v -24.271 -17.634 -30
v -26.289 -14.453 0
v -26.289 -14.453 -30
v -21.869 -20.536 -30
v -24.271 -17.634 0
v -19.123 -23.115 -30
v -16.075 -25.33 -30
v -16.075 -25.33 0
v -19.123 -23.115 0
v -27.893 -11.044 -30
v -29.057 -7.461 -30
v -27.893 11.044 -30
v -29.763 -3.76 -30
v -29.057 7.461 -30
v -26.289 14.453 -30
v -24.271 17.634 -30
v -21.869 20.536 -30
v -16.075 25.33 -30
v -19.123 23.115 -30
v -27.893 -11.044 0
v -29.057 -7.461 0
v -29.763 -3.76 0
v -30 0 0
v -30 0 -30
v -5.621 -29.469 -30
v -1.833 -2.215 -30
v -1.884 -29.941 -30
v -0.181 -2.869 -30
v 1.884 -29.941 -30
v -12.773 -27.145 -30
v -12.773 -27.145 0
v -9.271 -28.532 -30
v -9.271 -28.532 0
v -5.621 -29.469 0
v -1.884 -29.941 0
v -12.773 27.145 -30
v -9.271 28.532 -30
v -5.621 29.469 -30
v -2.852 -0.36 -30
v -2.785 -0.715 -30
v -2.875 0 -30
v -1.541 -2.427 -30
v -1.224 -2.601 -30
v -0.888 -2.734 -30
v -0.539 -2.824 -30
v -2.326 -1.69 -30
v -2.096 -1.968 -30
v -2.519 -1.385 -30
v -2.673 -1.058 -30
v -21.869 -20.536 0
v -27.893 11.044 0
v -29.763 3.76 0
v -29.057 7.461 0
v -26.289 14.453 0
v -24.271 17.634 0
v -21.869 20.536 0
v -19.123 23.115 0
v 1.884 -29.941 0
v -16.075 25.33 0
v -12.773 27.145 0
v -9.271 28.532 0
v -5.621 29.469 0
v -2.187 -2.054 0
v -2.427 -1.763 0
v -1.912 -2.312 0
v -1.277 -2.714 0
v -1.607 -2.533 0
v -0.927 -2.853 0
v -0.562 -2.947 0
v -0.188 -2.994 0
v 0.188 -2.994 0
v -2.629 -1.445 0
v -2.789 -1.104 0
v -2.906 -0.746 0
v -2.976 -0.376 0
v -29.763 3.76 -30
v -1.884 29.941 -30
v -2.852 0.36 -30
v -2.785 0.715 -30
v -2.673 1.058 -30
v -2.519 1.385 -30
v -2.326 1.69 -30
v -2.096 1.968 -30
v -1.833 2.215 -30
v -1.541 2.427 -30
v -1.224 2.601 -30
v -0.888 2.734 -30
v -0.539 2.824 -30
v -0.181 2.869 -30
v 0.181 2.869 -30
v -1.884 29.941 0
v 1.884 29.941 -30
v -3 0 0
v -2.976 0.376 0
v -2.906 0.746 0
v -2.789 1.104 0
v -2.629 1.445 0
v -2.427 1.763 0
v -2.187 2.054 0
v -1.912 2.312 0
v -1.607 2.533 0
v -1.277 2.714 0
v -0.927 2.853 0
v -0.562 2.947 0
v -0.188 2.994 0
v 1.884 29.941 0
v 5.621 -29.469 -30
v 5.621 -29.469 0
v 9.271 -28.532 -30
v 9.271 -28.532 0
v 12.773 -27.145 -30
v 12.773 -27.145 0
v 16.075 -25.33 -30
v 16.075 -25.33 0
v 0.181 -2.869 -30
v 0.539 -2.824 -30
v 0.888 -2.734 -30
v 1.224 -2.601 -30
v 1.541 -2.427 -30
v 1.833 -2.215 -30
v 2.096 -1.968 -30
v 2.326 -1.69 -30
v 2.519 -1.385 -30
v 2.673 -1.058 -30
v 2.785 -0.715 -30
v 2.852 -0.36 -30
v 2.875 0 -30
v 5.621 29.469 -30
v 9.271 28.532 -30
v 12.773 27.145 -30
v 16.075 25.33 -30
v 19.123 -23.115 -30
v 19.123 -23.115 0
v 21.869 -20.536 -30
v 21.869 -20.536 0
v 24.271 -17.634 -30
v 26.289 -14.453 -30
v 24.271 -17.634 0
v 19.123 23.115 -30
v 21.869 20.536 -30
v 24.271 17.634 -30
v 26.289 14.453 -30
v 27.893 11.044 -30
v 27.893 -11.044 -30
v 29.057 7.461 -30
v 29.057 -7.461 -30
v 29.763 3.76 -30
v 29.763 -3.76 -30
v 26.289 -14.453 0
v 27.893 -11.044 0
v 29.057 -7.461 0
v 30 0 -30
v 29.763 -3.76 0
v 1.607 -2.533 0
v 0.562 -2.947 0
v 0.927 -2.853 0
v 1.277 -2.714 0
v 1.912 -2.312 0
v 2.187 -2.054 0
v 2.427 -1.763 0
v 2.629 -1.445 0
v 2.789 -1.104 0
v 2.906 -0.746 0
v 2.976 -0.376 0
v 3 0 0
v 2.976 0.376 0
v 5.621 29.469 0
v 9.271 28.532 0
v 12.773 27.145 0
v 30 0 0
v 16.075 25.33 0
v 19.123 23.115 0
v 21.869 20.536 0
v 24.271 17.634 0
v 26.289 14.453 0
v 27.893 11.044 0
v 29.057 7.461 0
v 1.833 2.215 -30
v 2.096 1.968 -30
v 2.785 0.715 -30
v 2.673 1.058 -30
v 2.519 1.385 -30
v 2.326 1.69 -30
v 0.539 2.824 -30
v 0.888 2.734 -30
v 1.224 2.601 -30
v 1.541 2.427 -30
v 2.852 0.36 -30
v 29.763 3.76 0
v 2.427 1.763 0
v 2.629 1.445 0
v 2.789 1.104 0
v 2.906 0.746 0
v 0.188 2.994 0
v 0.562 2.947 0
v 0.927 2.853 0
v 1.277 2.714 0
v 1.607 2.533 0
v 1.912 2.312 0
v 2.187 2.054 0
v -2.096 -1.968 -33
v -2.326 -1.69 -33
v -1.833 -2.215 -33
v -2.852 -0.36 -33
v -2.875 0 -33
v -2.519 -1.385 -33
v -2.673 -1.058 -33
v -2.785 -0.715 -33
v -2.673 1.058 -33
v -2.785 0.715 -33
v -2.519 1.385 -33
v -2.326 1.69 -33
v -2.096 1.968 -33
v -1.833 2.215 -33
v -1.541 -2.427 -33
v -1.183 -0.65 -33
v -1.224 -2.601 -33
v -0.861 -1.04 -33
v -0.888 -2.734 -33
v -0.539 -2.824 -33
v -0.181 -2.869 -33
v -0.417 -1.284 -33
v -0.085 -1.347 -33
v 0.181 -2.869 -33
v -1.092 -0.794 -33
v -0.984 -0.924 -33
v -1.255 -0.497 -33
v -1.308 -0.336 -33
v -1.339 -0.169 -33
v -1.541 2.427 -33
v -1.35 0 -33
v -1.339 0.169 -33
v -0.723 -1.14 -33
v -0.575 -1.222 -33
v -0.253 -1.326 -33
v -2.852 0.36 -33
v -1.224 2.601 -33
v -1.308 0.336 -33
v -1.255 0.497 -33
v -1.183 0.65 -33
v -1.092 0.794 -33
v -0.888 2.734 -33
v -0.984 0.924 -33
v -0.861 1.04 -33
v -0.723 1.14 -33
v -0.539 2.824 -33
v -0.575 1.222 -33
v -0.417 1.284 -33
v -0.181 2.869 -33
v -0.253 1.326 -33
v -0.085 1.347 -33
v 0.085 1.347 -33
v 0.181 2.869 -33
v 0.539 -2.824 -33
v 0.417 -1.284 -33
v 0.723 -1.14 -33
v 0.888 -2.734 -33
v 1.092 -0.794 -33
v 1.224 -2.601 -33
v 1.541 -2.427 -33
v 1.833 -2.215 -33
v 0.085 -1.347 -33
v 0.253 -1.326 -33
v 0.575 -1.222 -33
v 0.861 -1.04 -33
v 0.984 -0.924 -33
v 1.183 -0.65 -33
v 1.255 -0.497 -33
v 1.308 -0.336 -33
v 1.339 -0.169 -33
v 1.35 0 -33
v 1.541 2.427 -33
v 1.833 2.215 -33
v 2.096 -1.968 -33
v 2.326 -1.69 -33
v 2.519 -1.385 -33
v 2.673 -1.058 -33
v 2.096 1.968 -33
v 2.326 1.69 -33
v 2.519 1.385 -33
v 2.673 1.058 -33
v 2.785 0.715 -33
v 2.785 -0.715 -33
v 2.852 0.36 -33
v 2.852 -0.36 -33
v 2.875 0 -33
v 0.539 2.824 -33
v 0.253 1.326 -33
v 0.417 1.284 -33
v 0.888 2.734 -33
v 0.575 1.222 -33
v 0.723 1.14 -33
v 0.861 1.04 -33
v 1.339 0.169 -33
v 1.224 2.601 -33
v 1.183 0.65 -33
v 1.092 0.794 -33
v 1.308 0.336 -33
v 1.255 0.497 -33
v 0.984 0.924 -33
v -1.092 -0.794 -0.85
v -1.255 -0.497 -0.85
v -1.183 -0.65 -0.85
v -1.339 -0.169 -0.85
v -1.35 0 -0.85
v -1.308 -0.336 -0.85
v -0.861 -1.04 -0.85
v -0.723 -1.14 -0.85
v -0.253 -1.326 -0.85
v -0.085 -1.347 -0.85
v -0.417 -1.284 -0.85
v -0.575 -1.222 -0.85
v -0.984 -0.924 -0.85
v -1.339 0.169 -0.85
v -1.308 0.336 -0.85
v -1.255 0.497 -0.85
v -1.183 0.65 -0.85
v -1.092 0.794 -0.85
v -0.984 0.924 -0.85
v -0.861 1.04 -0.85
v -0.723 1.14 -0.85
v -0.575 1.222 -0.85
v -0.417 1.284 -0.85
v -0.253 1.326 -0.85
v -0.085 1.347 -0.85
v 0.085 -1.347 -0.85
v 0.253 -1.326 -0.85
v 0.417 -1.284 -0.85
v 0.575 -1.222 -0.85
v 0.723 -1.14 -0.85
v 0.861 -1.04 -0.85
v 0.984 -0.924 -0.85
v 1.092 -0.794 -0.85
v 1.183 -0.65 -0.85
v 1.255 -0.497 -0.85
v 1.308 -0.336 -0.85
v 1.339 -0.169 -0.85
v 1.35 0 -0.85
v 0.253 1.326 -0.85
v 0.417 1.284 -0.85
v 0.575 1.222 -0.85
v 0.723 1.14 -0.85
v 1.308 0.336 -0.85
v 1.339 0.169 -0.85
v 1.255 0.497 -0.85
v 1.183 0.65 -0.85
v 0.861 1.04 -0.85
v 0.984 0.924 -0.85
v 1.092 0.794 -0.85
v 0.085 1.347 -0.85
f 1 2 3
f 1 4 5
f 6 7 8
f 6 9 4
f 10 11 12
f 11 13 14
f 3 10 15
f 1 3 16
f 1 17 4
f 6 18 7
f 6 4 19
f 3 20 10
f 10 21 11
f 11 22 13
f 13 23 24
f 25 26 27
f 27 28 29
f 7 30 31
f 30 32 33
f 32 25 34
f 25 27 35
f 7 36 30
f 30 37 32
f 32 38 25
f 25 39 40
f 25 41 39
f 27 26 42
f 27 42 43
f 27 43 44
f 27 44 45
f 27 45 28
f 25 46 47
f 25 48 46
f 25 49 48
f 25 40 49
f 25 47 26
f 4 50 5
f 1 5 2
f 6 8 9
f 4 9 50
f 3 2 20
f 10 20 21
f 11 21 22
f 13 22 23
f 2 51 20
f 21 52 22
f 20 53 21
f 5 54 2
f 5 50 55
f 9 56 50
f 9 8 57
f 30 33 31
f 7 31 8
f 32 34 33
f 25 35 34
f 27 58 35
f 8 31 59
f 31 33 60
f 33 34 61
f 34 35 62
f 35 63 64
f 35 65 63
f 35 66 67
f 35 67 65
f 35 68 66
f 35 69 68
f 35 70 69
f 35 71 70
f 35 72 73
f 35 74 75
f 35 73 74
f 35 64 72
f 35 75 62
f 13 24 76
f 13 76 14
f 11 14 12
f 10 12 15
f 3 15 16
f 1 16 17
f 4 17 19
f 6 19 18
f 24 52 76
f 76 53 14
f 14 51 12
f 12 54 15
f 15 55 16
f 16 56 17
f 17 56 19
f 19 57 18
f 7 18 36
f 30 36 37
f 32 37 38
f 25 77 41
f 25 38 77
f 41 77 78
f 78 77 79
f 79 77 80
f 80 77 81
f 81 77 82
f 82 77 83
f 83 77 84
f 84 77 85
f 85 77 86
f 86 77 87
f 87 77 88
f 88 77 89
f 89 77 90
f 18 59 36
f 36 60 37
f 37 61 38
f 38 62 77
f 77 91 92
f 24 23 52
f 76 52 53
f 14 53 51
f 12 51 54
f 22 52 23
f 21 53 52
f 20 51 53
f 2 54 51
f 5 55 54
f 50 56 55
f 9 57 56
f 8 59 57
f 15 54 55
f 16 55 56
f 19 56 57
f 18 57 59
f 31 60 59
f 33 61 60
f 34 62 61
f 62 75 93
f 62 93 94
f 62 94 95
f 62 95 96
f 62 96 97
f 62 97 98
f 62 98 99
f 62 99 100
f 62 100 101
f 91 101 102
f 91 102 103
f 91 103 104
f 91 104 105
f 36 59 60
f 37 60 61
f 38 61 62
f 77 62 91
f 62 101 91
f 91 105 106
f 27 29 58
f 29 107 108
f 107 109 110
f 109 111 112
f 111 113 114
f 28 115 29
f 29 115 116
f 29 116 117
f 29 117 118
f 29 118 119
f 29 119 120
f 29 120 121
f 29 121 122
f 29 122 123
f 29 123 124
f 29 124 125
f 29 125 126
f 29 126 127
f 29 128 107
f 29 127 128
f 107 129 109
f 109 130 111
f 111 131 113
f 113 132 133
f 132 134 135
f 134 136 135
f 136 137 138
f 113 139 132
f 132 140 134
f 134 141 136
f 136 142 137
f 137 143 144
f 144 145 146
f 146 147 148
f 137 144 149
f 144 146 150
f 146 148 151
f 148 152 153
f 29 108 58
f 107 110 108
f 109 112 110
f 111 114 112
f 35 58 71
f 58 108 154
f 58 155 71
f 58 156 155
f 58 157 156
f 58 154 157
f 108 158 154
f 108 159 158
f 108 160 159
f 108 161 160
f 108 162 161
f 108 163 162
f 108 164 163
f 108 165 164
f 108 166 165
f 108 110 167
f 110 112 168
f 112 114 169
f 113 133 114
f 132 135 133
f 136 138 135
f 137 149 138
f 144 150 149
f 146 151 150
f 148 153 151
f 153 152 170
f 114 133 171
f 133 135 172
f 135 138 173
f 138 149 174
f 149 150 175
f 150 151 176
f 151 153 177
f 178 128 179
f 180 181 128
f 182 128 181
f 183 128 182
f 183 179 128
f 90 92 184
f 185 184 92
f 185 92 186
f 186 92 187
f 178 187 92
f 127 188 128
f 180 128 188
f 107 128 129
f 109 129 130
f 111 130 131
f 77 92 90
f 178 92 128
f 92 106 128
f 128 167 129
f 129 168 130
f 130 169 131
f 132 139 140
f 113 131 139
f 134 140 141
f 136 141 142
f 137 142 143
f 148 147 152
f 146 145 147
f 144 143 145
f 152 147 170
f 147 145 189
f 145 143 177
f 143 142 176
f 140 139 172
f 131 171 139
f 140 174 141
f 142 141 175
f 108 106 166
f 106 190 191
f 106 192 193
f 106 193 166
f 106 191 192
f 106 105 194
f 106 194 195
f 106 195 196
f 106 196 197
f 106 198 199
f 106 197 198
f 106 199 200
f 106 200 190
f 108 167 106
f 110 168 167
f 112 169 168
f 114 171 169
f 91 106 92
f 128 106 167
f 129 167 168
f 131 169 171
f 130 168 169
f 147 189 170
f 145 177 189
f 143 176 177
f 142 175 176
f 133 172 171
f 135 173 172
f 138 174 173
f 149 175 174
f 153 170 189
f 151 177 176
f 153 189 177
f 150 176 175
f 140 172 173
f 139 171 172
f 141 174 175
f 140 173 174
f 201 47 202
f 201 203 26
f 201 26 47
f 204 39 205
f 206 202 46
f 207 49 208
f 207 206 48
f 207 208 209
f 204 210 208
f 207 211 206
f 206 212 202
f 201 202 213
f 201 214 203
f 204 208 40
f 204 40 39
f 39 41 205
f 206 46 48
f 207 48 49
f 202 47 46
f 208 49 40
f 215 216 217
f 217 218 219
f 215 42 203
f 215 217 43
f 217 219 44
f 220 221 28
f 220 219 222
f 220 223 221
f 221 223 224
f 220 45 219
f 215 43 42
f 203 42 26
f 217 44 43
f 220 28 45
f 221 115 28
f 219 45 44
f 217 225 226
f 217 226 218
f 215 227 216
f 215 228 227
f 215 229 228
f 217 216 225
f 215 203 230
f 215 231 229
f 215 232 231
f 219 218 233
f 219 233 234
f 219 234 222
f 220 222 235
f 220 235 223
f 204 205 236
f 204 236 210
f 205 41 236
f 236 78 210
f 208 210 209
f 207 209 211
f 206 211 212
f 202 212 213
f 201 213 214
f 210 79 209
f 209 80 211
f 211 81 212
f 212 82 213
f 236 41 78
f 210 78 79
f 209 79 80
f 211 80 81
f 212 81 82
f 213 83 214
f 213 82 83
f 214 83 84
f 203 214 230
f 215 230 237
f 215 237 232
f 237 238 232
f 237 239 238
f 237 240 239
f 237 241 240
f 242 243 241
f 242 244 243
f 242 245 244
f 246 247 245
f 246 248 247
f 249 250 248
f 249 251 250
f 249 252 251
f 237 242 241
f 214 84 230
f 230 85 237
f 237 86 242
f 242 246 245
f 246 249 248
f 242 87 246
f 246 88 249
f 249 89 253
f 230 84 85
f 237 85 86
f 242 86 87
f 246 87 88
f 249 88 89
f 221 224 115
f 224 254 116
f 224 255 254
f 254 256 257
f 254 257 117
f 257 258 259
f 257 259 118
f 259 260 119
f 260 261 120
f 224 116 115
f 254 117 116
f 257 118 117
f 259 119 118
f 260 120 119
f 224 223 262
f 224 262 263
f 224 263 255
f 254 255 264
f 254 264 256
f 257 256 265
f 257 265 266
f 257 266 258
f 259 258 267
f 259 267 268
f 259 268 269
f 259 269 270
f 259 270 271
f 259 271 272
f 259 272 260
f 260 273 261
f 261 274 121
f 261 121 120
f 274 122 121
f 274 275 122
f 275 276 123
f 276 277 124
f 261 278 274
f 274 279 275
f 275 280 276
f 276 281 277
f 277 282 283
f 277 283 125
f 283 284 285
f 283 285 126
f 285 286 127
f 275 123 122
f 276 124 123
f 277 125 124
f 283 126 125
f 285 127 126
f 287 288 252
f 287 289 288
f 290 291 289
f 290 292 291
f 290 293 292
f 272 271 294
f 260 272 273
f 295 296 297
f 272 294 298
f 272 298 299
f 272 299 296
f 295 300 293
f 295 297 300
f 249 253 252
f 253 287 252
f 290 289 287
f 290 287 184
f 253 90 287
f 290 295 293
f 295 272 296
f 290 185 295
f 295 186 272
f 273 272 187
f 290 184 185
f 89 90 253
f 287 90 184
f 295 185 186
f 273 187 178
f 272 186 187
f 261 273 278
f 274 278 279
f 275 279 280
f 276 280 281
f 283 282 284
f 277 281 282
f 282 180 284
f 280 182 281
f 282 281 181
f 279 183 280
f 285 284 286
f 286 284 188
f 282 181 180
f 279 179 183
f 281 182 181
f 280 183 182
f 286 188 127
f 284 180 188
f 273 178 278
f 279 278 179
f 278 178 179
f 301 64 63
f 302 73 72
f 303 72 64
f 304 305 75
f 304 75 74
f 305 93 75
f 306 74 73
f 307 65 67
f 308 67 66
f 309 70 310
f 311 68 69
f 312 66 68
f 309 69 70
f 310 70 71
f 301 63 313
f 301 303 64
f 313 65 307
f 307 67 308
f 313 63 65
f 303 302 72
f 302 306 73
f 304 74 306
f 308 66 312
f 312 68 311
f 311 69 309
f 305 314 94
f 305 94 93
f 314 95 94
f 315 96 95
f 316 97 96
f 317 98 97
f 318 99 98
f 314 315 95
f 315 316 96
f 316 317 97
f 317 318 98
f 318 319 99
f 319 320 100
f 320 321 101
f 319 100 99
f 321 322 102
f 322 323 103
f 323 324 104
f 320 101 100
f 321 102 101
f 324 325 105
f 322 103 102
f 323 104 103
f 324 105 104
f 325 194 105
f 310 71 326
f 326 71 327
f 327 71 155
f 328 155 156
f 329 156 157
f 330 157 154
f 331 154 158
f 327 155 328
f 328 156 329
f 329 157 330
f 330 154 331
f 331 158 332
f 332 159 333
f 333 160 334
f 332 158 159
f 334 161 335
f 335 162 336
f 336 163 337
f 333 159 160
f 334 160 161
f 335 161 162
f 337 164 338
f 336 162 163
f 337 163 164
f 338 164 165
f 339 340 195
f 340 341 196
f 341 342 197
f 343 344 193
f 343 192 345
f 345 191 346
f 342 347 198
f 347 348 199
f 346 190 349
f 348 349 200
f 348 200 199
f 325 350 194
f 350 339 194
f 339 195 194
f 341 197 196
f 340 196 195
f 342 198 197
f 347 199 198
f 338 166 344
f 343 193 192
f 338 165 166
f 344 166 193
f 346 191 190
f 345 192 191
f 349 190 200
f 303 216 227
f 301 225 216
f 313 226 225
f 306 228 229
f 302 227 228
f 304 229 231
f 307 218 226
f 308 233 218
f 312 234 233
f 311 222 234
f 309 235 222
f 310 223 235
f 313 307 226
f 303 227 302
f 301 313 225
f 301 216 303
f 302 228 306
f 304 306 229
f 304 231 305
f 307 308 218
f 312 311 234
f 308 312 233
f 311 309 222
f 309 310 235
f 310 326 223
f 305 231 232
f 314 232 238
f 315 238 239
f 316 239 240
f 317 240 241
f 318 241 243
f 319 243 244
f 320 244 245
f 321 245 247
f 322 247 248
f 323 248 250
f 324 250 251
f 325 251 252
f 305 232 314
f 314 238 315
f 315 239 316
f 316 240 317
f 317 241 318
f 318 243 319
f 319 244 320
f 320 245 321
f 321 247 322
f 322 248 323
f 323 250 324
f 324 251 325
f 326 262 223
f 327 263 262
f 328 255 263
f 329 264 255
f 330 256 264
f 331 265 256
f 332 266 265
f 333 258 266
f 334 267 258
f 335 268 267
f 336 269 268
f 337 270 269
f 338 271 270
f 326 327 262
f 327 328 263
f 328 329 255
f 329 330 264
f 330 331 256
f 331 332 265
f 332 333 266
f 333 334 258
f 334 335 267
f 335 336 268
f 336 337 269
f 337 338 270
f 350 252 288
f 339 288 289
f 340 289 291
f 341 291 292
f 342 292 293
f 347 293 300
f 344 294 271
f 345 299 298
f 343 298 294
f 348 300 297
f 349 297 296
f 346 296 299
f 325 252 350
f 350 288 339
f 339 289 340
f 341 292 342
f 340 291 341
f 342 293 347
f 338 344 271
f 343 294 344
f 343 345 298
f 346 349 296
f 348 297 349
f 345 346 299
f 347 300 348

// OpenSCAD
$fn = 50;

difference() {
	union() {
		translate(v = [0, 0, -30.0]) {
			cylinder(h = 30, r = 30.0);
		}
		#translate(v = [0, 0, -33.0]) {
			cylinder(h = 33, r = 2.875);
		}
	}
	union() {
		translate(v = [0, 0, 0]) {
			rotate(a = [0, 0, 0]) {
				difference() {
					union() {
						translate(v = [0, 0, -33.0]) {
							cylinder(h = 33, r = 1.0);
						}
						translate(v = [0, 0, -0.85]) {
							cylinder(h = 0.85, r1 = 1.35, r2 = 3.0);
						}
						translate(v = [0, 0, -33.0]) {
							cylinder(h = 33, r = 1.35);
						}
						translate(v = [0, 0, -33.0]) {
							cylinder(h = 33, r = 1.0);
						}
					}
					union();
				}
			}
		}
	}
}
